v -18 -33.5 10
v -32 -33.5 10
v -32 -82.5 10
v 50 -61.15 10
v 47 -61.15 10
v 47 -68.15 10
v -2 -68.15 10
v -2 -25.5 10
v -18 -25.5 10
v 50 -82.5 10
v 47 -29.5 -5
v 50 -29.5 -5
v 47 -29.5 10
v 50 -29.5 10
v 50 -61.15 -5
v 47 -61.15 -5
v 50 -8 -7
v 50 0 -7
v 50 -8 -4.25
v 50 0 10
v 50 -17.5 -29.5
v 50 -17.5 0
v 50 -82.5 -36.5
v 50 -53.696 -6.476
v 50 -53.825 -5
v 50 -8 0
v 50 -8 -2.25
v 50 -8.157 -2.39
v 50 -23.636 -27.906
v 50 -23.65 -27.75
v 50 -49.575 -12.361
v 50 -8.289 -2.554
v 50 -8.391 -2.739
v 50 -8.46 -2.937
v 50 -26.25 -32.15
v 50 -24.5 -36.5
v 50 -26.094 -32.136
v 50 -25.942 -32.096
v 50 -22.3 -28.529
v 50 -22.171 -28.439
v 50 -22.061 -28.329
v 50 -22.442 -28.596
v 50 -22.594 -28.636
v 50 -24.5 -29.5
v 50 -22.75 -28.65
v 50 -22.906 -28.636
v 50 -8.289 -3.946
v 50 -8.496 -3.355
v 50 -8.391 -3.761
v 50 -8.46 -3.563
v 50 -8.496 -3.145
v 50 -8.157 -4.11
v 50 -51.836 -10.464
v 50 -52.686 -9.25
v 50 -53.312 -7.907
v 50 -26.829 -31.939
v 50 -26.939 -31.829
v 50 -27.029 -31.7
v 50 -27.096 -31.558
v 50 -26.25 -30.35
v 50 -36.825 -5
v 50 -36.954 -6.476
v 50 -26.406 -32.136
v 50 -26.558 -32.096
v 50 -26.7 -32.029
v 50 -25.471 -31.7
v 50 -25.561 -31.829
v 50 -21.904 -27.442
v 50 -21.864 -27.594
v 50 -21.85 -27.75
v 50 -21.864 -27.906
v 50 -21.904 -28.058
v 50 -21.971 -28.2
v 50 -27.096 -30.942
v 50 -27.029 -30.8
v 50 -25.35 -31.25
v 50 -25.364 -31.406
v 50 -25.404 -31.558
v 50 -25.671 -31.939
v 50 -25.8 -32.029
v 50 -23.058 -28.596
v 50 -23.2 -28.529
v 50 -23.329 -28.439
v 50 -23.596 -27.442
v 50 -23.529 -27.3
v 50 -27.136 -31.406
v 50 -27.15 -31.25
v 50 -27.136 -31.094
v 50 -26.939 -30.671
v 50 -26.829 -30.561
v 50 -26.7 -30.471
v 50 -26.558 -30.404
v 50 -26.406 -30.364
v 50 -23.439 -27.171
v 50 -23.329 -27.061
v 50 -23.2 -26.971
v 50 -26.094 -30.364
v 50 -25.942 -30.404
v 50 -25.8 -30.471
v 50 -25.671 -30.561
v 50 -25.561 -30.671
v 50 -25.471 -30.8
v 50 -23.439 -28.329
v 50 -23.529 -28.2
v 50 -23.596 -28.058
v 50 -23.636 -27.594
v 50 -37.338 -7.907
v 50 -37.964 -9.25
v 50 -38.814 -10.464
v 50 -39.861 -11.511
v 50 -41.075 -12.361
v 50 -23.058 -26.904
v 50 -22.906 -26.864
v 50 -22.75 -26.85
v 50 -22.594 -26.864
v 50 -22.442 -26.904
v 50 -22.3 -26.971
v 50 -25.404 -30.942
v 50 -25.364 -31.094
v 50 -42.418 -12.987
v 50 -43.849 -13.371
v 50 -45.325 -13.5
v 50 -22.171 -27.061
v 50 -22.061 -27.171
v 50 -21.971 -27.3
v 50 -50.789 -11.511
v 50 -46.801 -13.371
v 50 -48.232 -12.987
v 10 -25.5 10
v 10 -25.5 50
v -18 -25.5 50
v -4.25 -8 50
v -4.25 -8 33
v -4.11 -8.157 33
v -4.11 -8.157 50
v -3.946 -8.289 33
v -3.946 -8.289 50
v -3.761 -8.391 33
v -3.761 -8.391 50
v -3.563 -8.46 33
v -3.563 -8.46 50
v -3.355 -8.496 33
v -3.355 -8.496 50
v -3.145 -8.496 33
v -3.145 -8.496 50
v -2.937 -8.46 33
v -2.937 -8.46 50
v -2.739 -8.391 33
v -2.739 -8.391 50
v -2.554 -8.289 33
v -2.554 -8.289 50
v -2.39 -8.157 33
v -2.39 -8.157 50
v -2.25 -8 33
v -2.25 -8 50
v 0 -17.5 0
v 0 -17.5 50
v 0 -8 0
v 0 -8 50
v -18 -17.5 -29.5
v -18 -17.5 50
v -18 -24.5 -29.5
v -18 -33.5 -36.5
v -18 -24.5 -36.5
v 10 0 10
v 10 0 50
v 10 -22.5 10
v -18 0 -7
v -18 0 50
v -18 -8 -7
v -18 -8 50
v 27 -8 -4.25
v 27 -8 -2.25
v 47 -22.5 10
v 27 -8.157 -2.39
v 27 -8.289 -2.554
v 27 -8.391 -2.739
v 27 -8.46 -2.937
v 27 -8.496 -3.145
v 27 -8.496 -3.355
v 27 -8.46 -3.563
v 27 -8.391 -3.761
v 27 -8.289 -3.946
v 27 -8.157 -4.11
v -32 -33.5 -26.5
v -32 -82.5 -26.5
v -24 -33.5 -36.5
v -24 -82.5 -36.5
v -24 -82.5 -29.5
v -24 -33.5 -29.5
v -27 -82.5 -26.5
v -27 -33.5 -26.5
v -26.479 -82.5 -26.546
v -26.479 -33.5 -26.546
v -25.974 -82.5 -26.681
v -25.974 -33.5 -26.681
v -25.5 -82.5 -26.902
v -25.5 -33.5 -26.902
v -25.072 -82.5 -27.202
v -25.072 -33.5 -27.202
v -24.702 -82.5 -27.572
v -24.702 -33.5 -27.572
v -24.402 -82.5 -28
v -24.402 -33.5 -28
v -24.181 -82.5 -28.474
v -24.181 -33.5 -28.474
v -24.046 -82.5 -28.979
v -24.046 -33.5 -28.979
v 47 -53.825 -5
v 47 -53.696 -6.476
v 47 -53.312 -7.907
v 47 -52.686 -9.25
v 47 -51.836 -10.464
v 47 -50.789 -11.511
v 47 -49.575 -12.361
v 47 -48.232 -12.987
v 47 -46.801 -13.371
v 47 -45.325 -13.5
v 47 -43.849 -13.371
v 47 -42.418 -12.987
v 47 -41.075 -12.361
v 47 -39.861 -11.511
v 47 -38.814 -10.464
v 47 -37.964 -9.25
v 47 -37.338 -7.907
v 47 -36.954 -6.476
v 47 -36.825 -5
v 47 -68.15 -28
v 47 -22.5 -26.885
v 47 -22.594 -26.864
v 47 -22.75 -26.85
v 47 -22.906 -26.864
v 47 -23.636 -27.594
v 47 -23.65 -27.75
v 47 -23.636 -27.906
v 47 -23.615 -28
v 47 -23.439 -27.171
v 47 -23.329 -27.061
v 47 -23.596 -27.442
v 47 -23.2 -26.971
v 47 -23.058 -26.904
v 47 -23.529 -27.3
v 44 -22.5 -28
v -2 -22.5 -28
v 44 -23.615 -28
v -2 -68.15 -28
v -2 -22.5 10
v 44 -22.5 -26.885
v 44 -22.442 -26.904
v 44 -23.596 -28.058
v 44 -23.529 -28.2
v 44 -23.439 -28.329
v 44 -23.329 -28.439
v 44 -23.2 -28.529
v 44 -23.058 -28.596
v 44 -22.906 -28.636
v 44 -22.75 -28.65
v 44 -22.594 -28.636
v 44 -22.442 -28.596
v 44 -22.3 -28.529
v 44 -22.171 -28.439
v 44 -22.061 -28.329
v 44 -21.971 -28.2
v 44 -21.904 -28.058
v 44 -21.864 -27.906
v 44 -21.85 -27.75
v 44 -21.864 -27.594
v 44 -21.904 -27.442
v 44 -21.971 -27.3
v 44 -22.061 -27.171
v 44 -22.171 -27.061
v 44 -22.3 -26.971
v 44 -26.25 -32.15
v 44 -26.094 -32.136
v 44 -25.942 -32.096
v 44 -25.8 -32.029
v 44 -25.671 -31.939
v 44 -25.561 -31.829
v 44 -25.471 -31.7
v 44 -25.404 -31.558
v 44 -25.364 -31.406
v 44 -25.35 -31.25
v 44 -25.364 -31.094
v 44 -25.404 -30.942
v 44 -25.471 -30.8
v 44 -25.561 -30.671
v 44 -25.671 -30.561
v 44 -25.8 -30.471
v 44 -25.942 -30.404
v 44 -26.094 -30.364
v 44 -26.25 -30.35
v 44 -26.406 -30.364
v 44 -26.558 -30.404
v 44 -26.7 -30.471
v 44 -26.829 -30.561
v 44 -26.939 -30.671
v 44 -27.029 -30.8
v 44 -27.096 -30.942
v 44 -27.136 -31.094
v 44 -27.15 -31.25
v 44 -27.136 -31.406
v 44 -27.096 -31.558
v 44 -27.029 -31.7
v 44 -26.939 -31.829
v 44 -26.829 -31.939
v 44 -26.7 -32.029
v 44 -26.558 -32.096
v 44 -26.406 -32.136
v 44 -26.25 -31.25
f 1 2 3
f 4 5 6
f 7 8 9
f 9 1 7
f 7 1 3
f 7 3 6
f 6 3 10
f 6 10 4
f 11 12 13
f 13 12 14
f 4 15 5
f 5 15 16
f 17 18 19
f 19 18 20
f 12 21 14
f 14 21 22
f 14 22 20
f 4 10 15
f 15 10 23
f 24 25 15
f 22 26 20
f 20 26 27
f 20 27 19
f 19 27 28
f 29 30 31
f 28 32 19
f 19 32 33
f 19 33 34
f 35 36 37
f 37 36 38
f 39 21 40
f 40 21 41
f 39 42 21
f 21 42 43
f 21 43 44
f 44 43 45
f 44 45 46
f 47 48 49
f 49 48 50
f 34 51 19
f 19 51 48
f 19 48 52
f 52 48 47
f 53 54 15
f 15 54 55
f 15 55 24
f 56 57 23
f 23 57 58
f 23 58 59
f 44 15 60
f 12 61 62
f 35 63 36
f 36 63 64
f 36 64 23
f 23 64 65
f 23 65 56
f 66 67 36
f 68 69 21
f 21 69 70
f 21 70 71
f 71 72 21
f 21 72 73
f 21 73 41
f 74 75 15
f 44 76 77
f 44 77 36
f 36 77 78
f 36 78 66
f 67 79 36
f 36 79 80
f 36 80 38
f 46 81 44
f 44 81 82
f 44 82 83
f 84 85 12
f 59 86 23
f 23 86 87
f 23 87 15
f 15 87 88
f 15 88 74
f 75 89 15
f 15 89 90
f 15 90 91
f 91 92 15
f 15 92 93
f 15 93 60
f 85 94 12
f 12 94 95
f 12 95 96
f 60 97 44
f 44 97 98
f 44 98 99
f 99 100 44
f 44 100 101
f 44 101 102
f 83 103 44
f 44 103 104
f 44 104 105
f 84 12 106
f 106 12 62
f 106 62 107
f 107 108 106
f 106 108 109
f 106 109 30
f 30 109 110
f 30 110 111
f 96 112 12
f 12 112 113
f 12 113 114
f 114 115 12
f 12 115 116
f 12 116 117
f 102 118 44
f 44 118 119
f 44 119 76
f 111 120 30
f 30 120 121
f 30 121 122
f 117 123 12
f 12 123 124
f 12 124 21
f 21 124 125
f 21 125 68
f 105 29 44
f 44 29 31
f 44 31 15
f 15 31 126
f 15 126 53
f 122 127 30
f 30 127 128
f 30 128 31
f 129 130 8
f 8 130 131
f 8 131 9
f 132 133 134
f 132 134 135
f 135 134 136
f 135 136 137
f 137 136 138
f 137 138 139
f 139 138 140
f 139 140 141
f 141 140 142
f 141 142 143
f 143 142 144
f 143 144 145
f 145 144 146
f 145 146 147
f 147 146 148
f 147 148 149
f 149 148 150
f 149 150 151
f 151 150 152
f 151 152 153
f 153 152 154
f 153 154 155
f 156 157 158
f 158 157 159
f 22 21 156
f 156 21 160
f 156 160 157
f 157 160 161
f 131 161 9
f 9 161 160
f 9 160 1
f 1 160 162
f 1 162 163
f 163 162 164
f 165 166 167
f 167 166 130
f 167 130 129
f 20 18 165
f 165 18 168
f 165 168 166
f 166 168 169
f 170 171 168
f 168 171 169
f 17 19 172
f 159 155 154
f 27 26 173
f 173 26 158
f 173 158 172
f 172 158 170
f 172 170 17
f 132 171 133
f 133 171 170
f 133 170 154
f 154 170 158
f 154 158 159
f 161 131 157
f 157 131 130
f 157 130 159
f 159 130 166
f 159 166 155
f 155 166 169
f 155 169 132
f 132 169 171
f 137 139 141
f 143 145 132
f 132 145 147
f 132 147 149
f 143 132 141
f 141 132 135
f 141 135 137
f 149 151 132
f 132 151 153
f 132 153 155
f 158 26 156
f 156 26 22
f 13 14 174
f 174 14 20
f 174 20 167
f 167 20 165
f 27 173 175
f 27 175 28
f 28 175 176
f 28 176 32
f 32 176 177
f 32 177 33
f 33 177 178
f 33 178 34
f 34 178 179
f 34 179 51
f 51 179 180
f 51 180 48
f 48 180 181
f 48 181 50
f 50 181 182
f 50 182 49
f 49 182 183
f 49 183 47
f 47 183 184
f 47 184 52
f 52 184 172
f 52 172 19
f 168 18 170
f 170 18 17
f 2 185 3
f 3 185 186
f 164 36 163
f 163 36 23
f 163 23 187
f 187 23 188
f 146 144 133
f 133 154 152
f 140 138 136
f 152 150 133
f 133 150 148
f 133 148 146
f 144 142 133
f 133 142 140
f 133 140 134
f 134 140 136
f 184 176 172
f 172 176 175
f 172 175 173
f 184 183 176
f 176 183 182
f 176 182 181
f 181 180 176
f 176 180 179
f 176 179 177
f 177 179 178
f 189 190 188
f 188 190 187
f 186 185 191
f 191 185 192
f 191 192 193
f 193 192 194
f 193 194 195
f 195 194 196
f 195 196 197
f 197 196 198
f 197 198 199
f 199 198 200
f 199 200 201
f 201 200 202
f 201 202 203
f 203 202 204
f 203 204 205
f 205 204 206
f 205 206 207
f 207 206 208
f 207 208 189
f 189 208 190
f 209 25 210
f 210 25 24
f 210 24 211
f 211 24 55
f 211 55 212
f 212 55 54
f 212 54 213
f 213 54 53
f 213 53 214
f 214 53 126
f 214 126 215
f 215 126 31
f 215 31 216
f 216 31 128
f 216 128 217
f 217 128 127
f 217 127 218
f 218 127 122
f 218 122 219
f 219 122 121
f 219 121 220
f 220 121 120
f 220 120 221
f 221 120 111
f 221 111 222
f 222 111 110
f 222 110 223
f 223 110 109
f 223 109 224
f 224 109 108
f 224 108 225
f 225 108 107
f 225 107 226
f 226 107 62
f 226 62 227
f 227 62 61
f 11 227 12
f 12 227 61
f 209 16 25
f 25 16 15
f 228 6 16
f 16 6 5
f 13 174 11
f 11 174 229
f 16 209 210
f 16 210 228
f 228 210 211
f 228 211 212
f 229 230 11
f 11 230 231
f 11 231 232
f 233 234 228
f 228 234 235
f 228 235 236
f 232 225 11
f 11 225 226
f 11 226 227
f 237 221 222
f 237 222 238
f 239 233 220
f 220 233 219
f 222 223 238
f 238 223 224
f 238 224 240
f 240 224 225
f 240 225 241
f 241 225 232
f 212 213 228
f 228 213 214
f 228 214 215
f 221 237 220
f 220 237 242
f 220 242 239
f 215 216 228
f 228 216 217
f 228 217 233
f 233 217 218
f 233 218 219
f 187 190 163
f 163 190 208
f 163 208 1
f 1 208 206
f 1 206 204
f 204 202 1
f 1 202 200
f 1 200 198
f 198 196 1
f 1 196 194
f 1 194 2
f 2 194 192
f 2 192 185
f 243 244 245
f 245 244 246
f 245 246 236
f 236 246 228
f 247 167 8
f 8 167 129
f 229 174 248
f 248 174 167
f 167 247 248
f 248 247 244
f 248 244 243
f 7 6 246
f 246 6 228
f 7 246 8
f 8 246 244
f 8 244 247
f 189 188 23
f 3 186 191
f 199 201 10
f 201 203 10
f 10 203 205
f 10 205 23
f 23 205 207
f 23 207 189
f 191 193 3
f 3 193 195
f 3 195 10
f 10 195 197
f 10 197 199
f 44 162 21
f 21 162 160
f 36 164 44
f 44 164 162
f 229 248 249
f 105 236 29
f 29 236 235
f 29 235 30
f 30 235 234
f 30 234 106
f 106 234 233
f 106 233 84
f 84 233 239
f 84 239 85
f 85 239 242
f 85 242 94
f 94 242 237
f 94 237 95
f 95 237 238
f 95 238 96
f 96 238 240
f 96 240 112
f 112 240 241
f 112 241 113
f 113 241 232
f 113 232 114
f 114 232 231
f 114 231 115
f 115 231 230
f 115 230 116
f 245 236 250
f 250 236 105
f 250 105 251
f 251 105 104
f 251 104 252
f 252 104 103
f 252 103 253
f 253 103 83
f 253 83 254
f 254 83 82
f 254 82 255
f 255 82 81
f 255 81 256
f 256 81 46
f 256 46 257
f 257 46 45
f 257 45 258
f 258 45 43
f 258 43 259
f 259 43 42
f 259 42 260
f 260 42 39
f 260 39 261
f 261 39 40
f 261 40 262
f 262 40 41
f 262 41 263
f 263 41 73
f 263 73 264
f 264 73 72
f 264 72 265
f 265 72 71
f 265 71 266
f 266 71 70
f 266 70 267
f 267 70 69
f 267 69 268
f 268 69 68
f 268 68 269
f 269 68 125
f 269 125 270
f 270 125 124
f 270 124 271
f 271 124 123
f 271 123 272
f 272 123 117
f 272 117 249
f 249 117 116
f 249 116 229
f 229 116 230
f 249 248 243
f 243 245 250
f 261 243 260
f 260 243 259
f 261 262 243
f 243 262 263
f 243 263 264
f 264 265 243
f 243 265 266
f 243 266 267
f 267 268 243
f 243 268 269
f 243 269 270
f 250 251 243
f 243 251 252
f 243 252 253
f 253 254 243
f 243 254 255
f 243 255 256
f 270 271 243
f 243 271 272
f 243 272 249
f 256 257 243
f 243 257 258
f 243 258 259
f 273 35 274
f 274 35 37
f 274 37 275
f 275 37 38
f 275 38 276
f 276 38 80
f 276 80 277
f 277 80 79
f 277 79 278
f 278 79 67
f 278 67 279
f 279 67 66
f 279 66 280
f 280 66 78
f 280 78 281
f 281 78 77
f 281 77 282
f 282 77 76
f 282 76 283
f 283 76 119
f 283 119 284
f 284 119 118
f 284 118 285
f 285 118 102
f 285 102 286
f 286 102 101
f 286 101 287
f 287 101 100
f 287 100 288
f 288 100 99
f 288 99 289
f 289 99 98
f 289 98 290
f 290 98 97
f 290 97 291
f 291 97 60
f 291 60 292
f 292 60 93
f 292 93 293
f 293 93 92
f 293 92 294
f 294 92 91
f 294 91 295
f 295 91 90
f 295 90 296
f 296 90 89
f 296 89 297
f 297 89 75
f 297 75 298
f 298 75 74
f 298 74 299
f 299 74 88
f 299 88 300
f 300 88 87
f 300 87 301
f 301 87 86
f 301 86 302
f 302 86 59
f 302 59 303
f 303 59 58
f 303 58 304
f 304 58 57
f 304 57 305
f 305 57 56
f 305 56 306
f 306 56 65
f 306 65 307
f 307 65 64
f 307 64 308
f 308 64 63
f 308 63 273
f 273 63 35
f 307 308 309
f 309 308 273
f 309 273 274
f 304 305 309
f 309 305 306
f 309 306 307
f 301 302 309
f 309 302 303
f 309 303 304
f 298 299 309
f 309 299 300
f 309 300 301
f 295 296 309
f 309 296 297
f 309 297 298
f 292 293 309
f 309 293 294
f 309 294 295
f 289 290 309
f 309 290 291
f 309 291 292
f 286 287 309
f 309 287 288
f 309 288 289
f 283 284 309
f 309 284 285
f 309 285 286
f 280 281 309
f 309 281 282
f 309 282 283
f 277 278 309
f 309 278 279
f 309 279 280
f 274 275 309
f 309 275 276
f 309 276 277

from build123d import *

# Parameters (mm, degrees)
BOSS_EXTRUDE1_DEPTH = 50
SKETCH2_W           = 7
SKETCH2_H           = 8
BOSS_EXTRUDE2_DEPTH = 50
SKETCH2_3_W         = 7
SKETCH2_3_H         = 8
BOSS_EXTRUDE3_DEPTH = 18
SKETCH3_W           = 10
SKETCH3_H           = 63
SKETCH3_W_2         = 7
SKETCH3_H_2         = 8
BOSS_EXTRUDE4_DEPTH = 82
FILLET1_R           = 5
SKETCH4_W           = 49
SKETCH4_H           = 29.5
CUT_EXTRUDE1_DEPTH  = 63
SKETCH5_W           = 29.5
SKETCH5_H           = 11
BOSS_EXTRUDE5_DEPTH = 49
CUT_EXTRUDE2_DEPTH  = 29.5
SKETCH6_R           = 1.75
CUT_EXTRUDE3_DEPTH  = 5
SKETCH6_6_R         = 0.75
CUT_EXTRUDE4_DEPTH  = 15
SKETCH8_W           = 18
SKETCH8_H           = 9.5
CUT_EXTRUDE5_DEPTH  = 40
SKETCH9_W           = 7
SKETCH9_H           = 9.5
CUT_EXTRUDE6_DEPTH  = 45
SKETCH10_W          = 10
SKETCH10_H          = 10
CUT_EXTRUDE7_DEPTH  = 29.5
SKETCH11_W          = 13
SKETCH11_H          = 48
SKETCH11_H_2        = 7
CUT_EXTRUDE8_DEPTH  = 124.13610356
SKETCH12_W          = 8
SKETCH12_H          = 10
CUT_EXTRUDE9_DEPTH  = 114.279521539
SKETCH13_W          = 10
SKETCH13_H          = 6
CUT_EXTRUDE10_DEPTH = 14
SKETCH15_W          = 14
SKETCH15_H          = 6
CUT_EXTRUDE11_DEPTH = 128.218316291
FILLET2_R           = 3
SKETCH17_W          = 49
SKETCH17_H          = 62
BOSS_EXTRUDE6_DEPTH = 46.5
CUT_EXTRUDE12_START = -30
SKETCH18_W          = 45
SKETCH18_H          = 63
CUT_EXTRUDE12_DEPTH = 30
SKETCH19_W          = 45
SKETCH19_H          = 4
SKETCH19_H_2        = 27.35
BOSS_EXTRUDE7_DEPTH = 30
BOSS_EXTRUDE8_DEPTH = 3
SKETCH24_W          = 14
SKETCH24_H          = 10
CUT_EXTRUDE15_DEPTH = 112.778799421
SKETCH26_W          = 42
SKETCH26_H          = 31.65
CUT_EXTRUDE16_DEPTH = 8
SKETCH27_W          = 42
SKETCH27_H          = 38
CUT_EXTRUDE17_DEPTH = 7
SKETCH28_W          = 42
SKETCH28_H          = 38
CUT_EXTRUDE18_DEPTH = 7
SKETCH29_W          = 38
SKETCH29_H          = 45.65
CUT_EXTRUDE19_DEPTH = 7
SKETCH30_W          = 46.5
SKETCH30_H          = 6
CUT_EXTRUDE20_DEPTH = 131.599578866
CUT_EXTRUDE21_DEPTH = 127.610623567
SKETCH32_3_R        = 0.9
SKETCH32_3_R_2      = 0.75
CUT_EXTRUDE22_DEPTH = 6


with BuildPart() as part:
    # Sketch1 → Boss-Extrude1 (new body)
    with BuildSketch(Plane.XY):
        with BuildLine():
            Line((-2.25, -8), (-4.25, -8))
            ThreePointArc((-4.25, -8), (-3.25, -8.5), (-2.25, -8))
        make_face()
        Polygon((10, -25.5), (10, 0), (0, 0), (-18, 0), (-18, -8), (0, -8), (0, -17.5), (-18, -17.5), (-18, -25.5), align=None)
    extrude(amount=BOSS_EXTRUDE1_DEPTH)

    # Sketch2 → Boss-Extrude2 (add)
    with BuildSketch(Plane(origin=(0, 0, 0), x_dir=(0, 0, -1), z_dir=(1, 0, 0))):
        Polygon((7, 0), (0, 0), (0, -8), (2.25, -8), (4.25, -8), (7, -8), align=None)
        Polygon((0, -8), (0, 0), (-10, 0), (-10, -25.5), (0, -25.5), (0, -17.5), align=None)
        with Locations((3.5, -21.5)):
            Rectangle(SKETCH2_W, SKETCH2_H)
        with BuildLine():
            Line((4.25, -8), (2.25, -8))
            ThreePointArc((2.25, -8), (3.25, -8.5), (4.25, -8))
        make_face()
    extrude(amount=BOSS_EXTRUDE2_DEPTH)

    # Sketch2<3> → Boss-Extrude3 (add)
    with BuildSketch(Plane(origin=(0, 0, 0), x_dir=(0, 0, -1), z_dir=(1, 0, 0))):
        Polygon((7, 0), (0, 0), (0, -8), (2.25, -8), (4.25, -8), (7, -8), align=None)
        with Locations((3.5, -21.5)):
            Rectangle(SKETCH2_3_W, SKETCH2_3_H)
    extrude(amount=-BOSS_EXTRUDE3_DEPTH)

    # Sketch3 → Boss-Extrude4 (add)
    with BuildSketch(Plane(origin=(50, 0, 0), x_dir=(0, 0, -1), z_dir=(1, 0, 0))):
        Polygon((36.5, -17.5), (7, -17.5), (7, -25.5), (0, -25.5), (0, -88.5), (36.5, -88.5), align=None)
        with Locations((-5, -57)):
            Rectangle(SKETCH3_W, SKETCH3_H)
        with Locations((3.5, -21.5)):
            Rectangle(SKETCH3_W_2, SKETCH3_H_2)
        with Locations((-5, -21.5)):
            Rectangle(SKETCH3_W, SKETCH3_H_2)
    extrude(amount=-BOSS_EXTRUDE4_DEPTH)

    # Fillet1
    fillet1_edges = [part.edges().sort_by_distance(p)[0] for p in [
        (-32, -17.5, -13.25),
        (-32, -53, -36.5),
        (9, -17.5, -36.5),
    ]]
    fillet(fillet1_edges, radius=FILLET1_R)

    # Sketch4 → Cut-Extrude1 (cut)
    with BuildSketch(Plane.XZ.offset(88.5)):
        with Locations((25.5, -4.75)):
            Rectangle(SKETCH4_W, SKETCH4_H)
    extrude(amount=-CUT_EXTRUDE1_DEPTH, mode=Mode.SUBTRACT)

    # Sketch5 → Boss-Extrude5 (add)
    with BuildSketch(Plane(origin=(50, 0, 0), x_dir=(0, 0, -1), z_dir=(1, 0, 0))):
        with Locations((4.75, -31)):
            Rectangle(SKETCH5_W, SKETCH5_H)
        with Locations((4.75, -83)):
            Rectangle(SKETCH5_W, SKETCH5_H)
    extrude(amount=-BOSS_EXTRUDE5_DEPTH)

    # Sketch7 → Cut-Extrude2 (cut)
    with BuildSketch(Plane.XY.offset(10)):
        Polygon((1, -36.5), (27, -36.5), (27, -26.5), (50, -26.5), (50, -88.5), (27, -88.5), (27, -77.5), (1, -77.5), align=None)
    extrude(amount=-CUT_EXTRUDE2_DEPTH, mode=Mode.SUBTRACT)

    # Sketch6 → Cut-Extrude3 (cut)
    with BuildSketch(Plane(origin=(27, 0, 0), x_dir=(0, 0, -1), z_dir=(1, 0, 0))):
        with Locations((4.25, -81.5)):
            Circle(SKETCH6_R)
        with Locations((14.25, -81.5)):
            Circle(SKETCH6_R)
        with Locations((14.25, -32.5)):
            Circle(SKETCH6_R)
        with Locations((4.25, -32.5)):
            Circle(SKETCH6_R)
    extrude(amount=-CUT_EXTRUDE3_DEPTH, mode=Mode.SUBTRACT)

    # Sketch6<6> → Cut-Extrude4 (cut)
    with BuildSketch(Plane(origin=(27, 0, 0), x_dir=(0, 0, -1), z_dir=(1, 0, 0))):
        with Locations((4.25, -81.5)):
            Circle(SKETCH6_6_R)
        with Locations((14.25, -81.5)):
            Circle(SKETCH6_6_R)
        with Locations((14.25, -32.5)):
            Circle(SKETCH6_6_R)
        with Locations((4.25, -32.5)):
            Circle(SKETCH6_6_R)
    extrude(amount=-CUT_EXTRUDE4_DEPTH, mode=Mode.SUBTRACT)

    # Sketch8 → Cut-Extrude5 (cut)
    with BuildSketch(Plane(origin=(0, 0, -7), x_dir=(-1, 0, 0), z_dir=(0, 0, -1))):
        with Locations((9, -12.75)):
            Rectangle(SKETCH8_W, SKETCH8_H)
    extrude(amount=-CUT_EXTRUDE5_DEPTH, mode=Mode.SUBTRACT)

    # Sketch9 → Cut-Extrude6 (cut)
    with BuildSketch(Plane.ZY.offset(18)):
        with Locations((-3.5, -12.75)):
            Rectangle(SKETCH9_W, SKETCH9_H)
    extrude(amount=-CUT_EXTRUDE6_DEPTH, mode=Mode.SUBTRACT)

    # Sketch10 → Cut-Extrude7 (cut)
    with BuildSketch(Plane.XY.offset(10)):
        with Locations((6, -31.5)):
            Rectangle(SKETCH10_W, SKETCH10_H)
    extrude(amount=-CUT_EXTRUDE7_DEPTH, mode=Mode.SUBTRACT)

    # Sketch11 → Cut-Extrude8 (cut, through all)
    with BuildSketch(Plane.XY.offset(-19.5)):
        with Locations((43.5, -57.5)):
            Rectangle(SKETCH11_W, SKETCH11_H)
        with Locations((43.5, -85)):
            Rectangle(SKETCH11_W, SKETCH11_H_2)
    extrude(amount=-CUT_EXTRUDE8_DEPTH, mode=Mode.SUBTRACT)

    # Sketch12 → Cut-Extrude9 (cut, through all)
    with BuildSketch(Plane.XZ.offset(88.5)):
        with Locations((-28, -31.5)):
            Rectangle(SKETCH12_W, SKETCH12_H)
    extrude(amount=-CUT_EXTRUDE9_DEPTH, mode=Mode.SUBTRACT)

    # Sketch13 → Cut-Extrude10 (cut)
    with BuildSketch(Plane.ZY.offset(32)):
        with Locations((-31.5, -20.5)):
            Rectangle(SKETCH13_W, SKETCH13_H)
    extrude(amount=-CUT_EXTRUDE10_DEPTH, mode=Mode.SUBTRACT)

    # Sketch15 → Cut-Extrude11 (cut, through all)
    with BuildSketch(Plane(origin=(0, 0, -26.5), x_dir=(-1, 0, 0), z_dir=(0, 0, -1))):
        with Locations((25, -20.5)):
            Rectangle(SKETCH15_W, SKETCH15_H)
    extrude(amount=-CUT_EXTRUDE11_DEPTH, mode=Mode.SUBTRACT)

    # Fillet2
    fillet2_edges = [part.edges().sort_by_distance(p)[0] for p in [
        (-24, -56, -26.5),
        (-24, -23.5, -31.5),
        (-28, -23.5, -26.5),
    ]]
    fillet(fillet2_edges, radius=FILLET2_R)

    # Sketch17 → Boss-Extrude6 (add)
    with BuildSketch(Plane.XY.offset(10)):
        with Locations((25.5, -57.5)):
            Rectangle(SKETCH17_W, SKETCH17_H)
    extrude(amount=-BOSS_EXTRUDE6_DEPTH)

    # Sketch18 → Cut-Extrude12 (cut)
    with BuildSketch(Plane.XY.offset(10).offset(CUT_EXTRUDE12_START)):
        with Locations((27.5, -57)):
            Rectangle(SKETCH18_W, SKETCH18_H)
    extrude(amount=CUT_EXTRUDE12_DEPTH, mode=Mode.SUBTRACT)

    # Sketch19 → Boss-Extrude7 (add)
    with BuildSketch(Plane.XY.offset(-20)):
        with Locations((27.5, -27.5)):
            Rectangle(SKETCH19_W, SKETCH19_H)
        with Locations((27.5, -74.825)):
            Rectangle(SKETCH19_W, SKETCH19_H_2)
    extrude(amount=BOSS_EXTRUDE7_DEPTH)

    # Sketch22 → Boss-Extrude8 (add)
    with BuildSketch(Plane(origin=(50, 0, 0), x_dir=(0, 0, -1), z_dir=(1, 0, 0))):
        with BuildLine():
            Line((20, -61.15), (20, -45.325))
            Line((20, -45.325), (13.5, -45.325))
            ThreePointArc((13.5, -45.325), (11.01040764, -51.33540764), (5, -53.825))
            Line((5, -53.825), (5, -61.15))
            Line((5, -61.15), (20, -61.15))
        make_face()
        with BuildLine():
            Line((20, -45.325), (20, -29.5))
            Line((20, -29.5), (5, -29.5))
            Line((5, -29.5), (5, -36.825))
            ThreePointArc((5, -36.825), (11.01040764, -39.31459236), (13.5, -45.325))
            Line((13.5, -45.325), (20, -45.325))
        make_face()
    extrude(amount=-BOSS_EXTRUDE8_DEPTH)

    # Sketch24 → Cut-Extrude15 (cut, through all)
    with BuildSketch(Plane.XY.offset(10)):
        with Locations((-25, -28.5)):
            Rectangle(SKETCH24_W, SKETCH24_H)
    extrude(amount=-CUT_EXTRUDE15_DEPTH, mode=Mode.SUBTRACT)

    # Sketch26 → Cut-Extrude16 (cut)
    with BuildSketch(Plane.XY.offset(-20)):
        with Locations((26, -45.325)):
            Rectangle(SKETCH26_W, SKETCH26_H)
    extrude(amount=-CUT_EXTRUDE16_DEPTH, mode=Mode.SUBTRACT)

    # Sketch27 → Cut-Extrude17 (cut)
    with BuildSketch(Plane.XZ.offset(29.5)):
        with Locations((26, -9)):
            Rectangle(SKETCH27_W, SKETCH27_H)
    extrude(amount=-CUT_EXTRUDE17_DEPTH, mode=Mode.SUBTRACT)

    # Sketch28 → Cut-Extrude18 (cut)
    with BuildSketch(Plane(origin=(0, -61.15, 0), x_dir=(1, 0, 0), z_dir=(0, 1, 0))):
        with Locations((26, 9)):
            Rectangle(SKETCH28_W, SKETCH28_H)
    extrude(amount=-CUT_EXTRUDE18_DEPTH, mode=Mode.SUBTRACT)

    # Sketch29 → Cut-Extrude19 (cut)
    with BuildSketch(Plane(origin=(5, 0, 0), x_dir=(0, 0, -1), z_dir=(1, 0, 0))):
        with Locations((9, -45.325)):
            Rectangle(SKETCH29_W, SKETCH29_H)
    extrude(amount=-CUT_EXTRUDE19_DEPTH, mode=Mode.SUBTRACT)

    # Sketch30 → Cut-Extrude20 (cut, through all)
    with BuildSketch(Plane(origin=(50, 0, 0), x_dir=(0, 0, -1), z_dir=(1, 0, 0))):
        with Locations((13.25, -85.5)):
            Rectangle(SKETCH30_W, SKETCH30_H)
    extrude(amount=-CUT_EXTRUDE20_DEPTH, mode=Mode.SUBTRACT)

    # Sketch32 → Cut-Extrude21 (cut, through all)
    with BuildSketch(Plane(origin=(50, 0, 0), x_dir=(0, 0, -1), z_dir=(1, 0, 0))):
        with BuildLine():
            ThreePointArc((36.5, -22.5), (35.035533906, -18.964466094), (31.5, -17.5))
            Line((31.5, -17.5), (29.5, -17.5))
            Line((29.5, -17.5), (29.5, -20))
            Line((29.5, -20), (29.5, -21))
            Line((29.5, -21), (29.5, -24.5))
            Line((29.5, -24.5), (33, -24.5))
            Line((33, -24.5), (34.1, -24.5))
            Line((34.1, -24.5), (35.4, -24.5))
            Line((35.4, -24.5), (36.5, -24.5))
            Line((36.5, -24.5), (36.5, -22.5))
        make_face()
    extrude(amount=-CUT_EXTRUDE21_DEPTH, mode=Mode.SUBTRACT)

    # Sketch32<3> → Cut-Extrude22 (cut)
    with BuildSketch(Plane(origin=(50, 0, 0), x_dir=(0, 0, -1), z_dir=(1, 0, 0))):
        with Locations((27.75, -22.75)):
            Circle(SKETCH32_3_R)
        with Locations((27.75, -22.75)):
            Circle(SKETCH32_3_R_2, mode=Mode.SUBTRACT)
        with Locations((27.75, -22.75)):
            Circle(SKETCH32_3_R_2)
        with Locations((31.25, -26.25)):
            Circle(SKETCH32_3_R)
        with Locations((31.25, -26.25)):
            Circle(SKETCH32_3_R_2, mode=Mode.SUBTRACT)
        with Locations((31.25, -26.25)):
            Circle(SKETCH32_3_R_2)
    extrude(amount=-CUT_EXTRUDE22_DEPTH, mode=Mode.SUBTRACT)


solid = part.part
